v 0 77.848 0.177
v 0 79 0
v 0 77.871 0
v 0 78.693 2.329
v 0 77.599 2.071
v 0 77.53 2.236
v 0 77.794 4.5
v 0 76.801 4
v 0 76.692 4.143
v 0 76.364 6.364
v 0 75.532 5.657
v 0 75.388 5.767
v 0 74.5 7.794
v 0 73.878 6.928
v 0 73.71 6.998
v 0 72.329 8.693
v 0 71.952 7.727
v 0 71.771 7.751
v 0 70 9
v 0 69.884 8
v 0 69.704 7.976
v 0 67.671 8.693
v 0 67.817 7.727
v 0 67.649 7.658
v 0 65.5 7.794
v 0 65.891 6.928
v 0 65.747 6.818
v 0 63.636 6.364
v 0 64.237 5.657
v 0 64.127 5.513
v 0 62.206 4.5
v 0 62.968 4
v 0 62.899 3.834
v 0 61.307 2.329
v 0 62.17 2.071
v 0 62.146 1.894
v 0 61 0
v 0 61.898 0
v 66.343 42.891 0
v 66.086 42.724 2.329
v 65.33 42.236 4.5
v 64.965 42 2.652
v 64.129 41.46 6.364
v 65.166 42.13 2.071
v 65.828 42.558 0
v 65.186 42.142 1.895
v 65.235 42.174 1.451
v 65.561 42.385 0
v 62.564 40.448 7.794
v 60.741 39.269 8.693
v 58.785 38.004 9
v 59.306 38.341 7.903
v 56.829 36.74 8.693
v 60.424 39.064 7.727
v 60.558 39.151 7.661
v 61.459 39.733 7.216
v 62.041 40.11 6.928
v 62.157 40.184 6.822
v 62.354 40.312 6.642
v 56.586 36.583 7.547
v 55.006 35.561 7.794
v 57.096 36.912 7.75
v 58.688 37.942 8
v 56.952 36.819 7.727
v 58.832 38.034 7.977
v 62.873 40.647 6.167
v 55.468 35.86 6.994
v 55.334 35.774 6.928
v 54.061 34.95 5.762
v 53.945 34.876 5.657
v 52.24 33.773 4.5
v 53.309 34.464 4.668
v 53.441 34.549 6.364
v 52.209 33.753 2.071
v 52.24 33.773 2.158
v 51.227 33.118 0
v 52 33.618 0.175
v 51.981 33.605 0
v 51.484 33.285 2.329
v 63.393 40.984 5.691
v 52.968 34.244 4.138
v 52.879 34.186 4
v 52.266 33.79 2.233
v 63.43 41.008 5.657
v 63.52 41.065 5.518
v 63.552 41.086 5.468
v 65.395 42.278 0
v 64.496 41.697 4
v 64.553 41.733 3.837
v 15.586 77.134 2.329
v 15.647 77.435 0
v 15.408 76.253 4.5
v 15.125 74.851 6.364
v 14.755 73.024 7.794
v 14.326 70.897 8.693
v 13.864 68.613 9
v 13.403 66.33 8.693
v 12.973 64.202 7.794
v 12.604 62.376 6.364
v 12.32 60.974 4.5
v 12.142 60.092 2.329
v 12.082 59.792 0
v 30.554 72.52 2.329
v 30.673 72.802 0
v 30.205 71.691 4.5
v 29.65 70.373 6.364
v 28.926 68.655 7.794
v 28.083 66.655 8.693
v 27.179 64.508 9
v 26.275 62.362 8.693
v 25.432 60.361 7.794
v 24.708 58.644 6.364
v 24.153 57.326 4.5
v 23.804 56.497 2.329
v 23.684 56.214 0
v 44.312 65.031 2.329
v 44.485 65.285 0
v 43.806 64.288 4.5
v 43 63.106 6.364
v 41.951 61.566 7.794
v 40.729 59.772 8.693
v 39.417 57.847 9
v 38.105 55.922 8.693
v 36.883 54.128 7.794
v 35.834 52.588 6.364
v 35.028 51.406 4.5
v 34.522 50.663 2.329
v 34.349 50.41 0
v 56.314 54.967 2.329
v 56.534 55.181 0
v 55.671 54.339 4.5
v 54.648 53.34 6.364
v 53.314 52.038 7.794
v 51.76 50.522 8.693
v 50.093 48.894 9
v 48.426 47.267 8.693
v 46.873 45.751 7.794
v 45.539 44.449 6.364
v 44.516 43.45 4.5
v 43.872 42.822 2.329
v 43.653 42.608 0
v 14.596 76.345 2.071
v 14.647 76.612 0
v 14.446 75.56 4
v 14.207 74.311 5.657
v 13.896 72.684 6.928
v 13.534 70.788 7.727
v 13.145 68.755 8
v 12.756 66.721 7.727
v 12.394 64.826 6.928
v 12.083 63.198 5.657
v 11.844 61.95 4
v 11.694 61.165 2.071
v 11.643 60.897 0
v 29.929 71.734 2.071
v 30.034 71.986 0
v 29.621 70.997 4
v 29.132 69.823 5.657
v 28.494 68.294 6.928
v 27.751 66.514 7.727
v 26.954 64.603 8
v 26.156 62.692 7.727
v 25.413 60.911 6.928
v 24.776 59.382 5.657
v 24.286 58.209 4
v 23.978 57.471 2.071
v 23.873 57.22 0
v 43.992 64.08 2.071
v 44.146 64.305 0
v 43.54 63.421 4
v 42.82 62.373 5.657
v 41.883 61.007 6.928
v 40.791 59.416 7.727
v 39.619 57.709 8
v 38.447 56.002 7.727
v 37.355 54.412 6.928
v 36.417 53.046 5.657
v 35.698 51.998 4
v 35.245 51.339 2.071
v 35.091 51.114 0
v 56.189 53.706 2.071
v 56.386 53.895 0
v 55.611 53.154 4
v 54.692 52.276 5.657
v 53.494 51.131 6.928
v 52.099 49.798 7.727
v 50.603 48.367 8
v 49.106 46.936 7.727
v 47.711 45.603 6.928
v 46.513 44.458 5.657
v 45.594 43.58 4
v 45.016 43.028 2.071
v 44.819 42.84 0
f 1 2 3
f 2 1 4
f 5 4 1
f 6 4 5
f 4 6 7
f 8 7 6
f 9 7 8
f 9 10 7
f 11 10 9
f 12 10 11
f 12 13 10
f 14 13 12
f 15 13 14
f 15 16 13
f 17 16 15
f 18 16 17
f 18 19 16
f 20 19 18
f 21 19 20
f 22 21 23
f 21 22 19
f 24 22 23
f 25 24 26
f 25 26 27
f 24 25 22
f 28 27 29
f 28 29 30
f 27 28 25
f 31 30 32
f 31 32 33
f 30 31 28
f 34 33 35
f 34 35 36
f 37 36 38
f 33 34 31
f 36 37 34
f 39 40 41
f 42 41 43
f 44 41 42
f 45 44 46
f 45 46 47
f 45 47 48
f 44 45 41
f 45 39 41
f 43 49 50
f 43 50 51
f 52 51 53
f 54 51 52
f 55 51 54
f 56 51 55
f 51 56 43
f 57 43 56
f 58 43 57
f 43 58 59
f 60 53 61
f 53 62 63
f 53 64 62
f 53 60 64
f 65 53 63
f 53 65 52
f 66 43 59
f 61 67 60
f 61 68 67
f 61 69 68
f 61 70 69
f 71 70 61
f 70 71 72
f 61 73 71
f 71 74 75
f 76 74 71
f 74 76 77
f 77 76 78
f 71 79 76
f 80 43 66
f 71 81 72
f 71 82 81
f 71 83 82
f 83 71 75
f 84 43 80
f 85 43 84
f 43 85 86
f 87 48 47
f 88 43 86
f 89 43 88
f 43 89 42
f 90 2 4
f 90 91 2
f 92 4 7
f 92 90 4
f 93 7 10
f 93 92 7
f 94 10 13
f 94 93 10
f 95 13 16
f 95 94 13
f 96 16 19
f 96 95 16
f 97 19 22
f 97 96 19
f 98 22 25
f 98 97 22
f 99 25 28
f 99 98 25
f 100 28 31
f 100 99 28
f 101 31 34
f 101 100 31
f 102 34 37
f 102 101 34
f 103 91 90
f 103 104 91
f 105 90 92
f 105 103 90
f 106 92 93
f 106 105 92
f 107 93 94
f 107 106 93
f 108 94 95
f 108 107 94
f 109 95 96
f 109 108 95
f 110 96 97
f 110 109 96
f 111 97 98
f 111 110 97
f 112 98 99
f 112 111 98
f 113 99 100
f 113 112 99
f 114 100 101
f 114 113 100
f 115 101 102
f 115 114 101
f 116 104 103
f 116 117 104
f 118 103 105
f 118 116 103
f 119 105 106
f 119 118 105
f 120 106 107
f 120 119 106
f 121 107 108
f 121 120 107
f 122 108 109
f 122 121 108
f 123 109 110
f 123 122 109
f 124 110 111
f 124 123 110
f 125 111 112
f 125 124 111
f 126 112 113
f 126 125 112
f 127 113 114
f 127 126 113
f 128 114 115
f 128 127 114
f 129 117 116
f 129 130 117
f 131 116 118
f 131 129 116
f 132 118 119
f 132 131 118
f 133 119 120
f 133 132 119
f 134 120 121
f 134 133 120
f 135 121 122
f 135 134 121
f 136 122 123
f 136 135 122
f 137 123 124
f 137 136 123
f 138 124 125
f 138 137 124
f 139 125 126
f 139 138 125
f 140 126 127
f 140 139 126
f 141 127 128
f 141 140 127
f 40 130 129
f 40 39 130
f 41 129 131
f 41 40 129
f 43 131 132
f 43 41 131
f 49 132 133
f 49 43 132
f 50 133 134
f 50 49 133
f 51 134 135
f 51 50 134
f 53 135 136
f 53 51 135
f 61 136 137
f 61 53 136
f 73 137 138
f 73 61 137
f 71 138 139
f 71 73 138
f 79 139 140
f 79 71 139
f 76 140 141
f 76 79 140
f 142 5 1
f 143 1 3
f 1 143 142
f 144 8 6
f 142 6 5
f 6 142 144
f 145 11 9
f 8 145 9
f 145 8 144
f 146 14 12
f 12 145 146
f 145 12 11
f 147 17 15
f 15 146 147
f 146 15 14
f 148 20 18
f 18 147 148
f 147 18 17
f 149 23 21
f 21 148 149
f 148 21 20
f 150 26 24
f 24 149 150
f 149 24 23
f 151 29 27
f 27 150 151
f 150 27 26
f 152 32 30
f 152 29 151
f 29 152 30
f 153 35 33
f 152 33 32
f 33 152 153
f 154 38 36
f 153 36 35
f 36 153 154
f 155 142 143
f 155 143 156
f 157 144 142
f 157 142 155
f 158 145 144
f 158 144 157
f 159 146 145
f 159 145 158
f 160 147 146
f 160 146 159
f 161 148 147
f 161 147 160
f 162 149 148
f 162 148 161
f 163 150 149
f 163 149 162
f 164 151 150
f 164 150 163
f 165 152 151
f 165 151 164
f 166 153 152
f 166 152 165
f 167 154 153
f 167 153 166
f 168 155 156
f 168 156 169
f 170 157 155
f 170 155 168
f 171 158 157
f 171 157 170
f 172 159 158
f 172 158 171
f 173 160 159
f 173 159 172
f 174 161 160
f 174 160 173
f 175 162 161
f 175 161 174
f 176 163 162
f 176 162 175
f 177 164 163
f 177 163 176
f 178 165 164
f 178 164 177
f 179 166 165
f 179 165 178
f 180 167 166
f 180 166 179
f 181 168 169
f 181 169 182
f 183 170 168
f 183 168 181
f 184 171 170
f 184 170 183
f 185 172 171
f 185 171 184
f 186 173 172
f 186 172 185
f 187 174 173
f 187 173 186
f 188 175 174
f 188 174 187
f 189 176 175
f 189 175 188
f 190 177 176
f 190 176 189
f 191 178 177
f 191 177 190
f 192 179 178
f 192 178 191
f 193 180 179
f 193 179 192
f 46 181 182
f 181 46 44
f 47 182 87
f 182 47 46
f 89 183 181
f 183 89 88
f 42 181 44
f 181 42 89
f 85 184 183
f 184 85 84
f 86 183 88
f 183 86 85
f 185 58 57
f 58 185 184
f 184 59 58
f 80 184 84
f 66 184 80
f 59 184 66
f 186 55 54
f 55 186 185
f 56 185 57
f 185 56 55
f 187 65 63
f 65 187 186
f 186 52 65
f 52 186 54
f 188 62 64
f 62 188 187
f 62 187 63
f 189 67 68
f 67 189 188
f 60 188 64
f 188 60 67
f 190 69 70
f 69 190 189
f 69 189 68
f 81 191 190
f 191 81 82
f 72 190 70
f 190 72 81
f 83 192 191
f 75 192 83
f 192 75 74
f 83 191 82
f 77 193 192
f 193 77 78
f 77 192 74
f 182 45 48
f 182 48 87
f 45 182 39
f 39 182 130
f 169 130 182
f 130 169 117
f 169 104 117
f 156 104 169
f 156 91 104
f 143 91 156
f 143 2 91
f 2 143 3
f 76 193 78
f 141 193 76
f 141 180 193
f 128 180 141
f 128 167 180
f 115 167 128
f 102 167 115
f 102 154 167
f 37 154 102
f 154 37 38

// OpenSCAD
// file: ../build_environments.scad
// build_environments.scad: modules to build level sections
//

module pool(diameter=10.0, wall_height=2.0, step_width=3.0, connections=[])
{
    difference() {
        union() {
        difference() {
            cylinder(h=0.5,r1=diameter+step_width,r2=diameter+step_width,$fn=48);
            translate([0,0,-0.1])
                cylinder(h=0.7,r1=diameter,r2=diameter,$fn=48);
        }
        difference() {
            cylinder(h=wall_height,r1=diameter+step_width+1.0,r2=diameter+step_width+1.0,$fn=48);
            translate([0,0,-0.1])
                cylinder(h=wall_height+0.2,r1=diameter+step_width,r2=diameter+step_width,$fn=48);
        }
        }
    
        for (c = connections)
        {
            rotate([0,90,0]) {
                angle = atan2(c[1],c[0]);
                rotate([-angle,0,0]) {
                    cylinder(h=diameter+5.0,r1=c[2],r2=c[2],$fn=48);
                }
            }
        }
    }
}

module straight(length=10.0, width=2.0, dy1=0.0, dy2=0.0, dz=0.0)
{
    dims = [0, 0, 0, 0, 0, (dz/length)];
    matrix = [
        [ 1, dims[0], dims[1], 0 ],
        [ dims[2], 1, dims[4], 0 ],
        [ dims[5], dims[3], 1, 0 ],
        [ 0, 0, 0, 1 ]
    ];
    multmatrix(matrix)
    difference() {
        translate([dy1,0,0])
        union() {
            rotate([0,90,0]) {
                difference() {
                    cylinder(h=(length-dy1-dy2),r1=width+1.0,r2=width+1.0,$fn=24);
                    translate([0,0,-0.1])
                        cylinder(h=(length-dy1-dy2+0.2),r1=width,r2=width,$fn=24);
                }
                difference() {
                    cylinder(h=1.0,r1=width+2.0,r2=width+2.0,$fn=24);
                    translate([0,0,-0.1])
                        cylinder(h=1.2,r1=width,r2=width,$fn=24);
                }
                translate([0,0,(length-dy1-dy2)-1.0]) {
                    difference() {
                        cylinder(h=1.0,r1=width+2.0,r2=width+2.0,$fn=24);
                        translate([0,0,-0.1])
                            cylinder(h=1.2,r1=width,r2=width,$fn=24);
                    }
                }
            }
        }
        translate([0,0,-(2*width+4.0)/2])
            cube([3*length,3*length,2*width+4.0],center=true);
    }
}

module curve(p0=[0,0], center=[0,0], dir=1, angle=0.0, width=2.0)
{
    radius = sqrt((p0[0]-center[0])*(p0[0]-center[0]) + (p0[1]-center[1])*(p0[1]-center[1]));
    if (dir == 0) {
        difference() {
            rotate([0,0,-90])
            difference() {
                rotate_extrude(angle = angle, convexity = 10, $fn=32)
                    translate([radius, 0, 0])
                        circle(r = width+1.0,$fn=24);
                rotate([0,0,-1.0])
                    rotate_extrude(angle = angle+2.0, convexity = 10, $fn=32)
                        translate([radius, 0, 0])
                            circle(r = width,$fn=24);
            }
            translate([0,0,-(2*width+4.0)/2])
                cube([5*radius,5*radius,2*width+4.0],center=true);
        }
    }
    else {
        difference() {
            rotate([0,0,90])
            difference() {
                rotate_extrude(angle = -angle, convexity = 10, $fn=32)
                    translate([radius, 0, 0])
                        circle(r = width+1.0,$fn=24);
                rotate([0,0,1.0])
                    rotate_extrude(angle = -angle-2.0, convexity = 10, $fn=32)
                        translate([radius, 0, 0])
                            circle(r = width,$fn=24);
            }
            translate([0,0,-(2*width+4.0)/2])
                cube([5*radius,5*radius,2*width+4.0],center=true);
        }
    }

}

// test pool
//pool(diameter=12.0000, wall_height=3.0000, step_width=3.0000, connections=[[0.0000,-26.0000,2.0000], [23.6074,0.0000,2.0000]]);

// test straight, slope
//straight(length=26.0000, width=2.0000, dy1=11.8322, dy2=6.7082, dz=0.0000);
//straight(length=29.1549, width=12.0000, dy1=0.0000, dy2=0.0000, dz=-15.0000);

// test curve
//curve(p0=[23.6074, 0.0000], center=[23.6074, 5.0000], dir=0, angle=60.1011, width=2.0000);
//curve(p0=[33.6426, 12.4219], center=[37.9771, 9.9295], dir=1, angle=120.4627, width=2.0000);
// main file
use <../build_environments.scad>;
curve(p0=[189.7351, 381.8563], center=[232.2566, 326.2512], dir=1, angle=57.1174, width=8.0000);
